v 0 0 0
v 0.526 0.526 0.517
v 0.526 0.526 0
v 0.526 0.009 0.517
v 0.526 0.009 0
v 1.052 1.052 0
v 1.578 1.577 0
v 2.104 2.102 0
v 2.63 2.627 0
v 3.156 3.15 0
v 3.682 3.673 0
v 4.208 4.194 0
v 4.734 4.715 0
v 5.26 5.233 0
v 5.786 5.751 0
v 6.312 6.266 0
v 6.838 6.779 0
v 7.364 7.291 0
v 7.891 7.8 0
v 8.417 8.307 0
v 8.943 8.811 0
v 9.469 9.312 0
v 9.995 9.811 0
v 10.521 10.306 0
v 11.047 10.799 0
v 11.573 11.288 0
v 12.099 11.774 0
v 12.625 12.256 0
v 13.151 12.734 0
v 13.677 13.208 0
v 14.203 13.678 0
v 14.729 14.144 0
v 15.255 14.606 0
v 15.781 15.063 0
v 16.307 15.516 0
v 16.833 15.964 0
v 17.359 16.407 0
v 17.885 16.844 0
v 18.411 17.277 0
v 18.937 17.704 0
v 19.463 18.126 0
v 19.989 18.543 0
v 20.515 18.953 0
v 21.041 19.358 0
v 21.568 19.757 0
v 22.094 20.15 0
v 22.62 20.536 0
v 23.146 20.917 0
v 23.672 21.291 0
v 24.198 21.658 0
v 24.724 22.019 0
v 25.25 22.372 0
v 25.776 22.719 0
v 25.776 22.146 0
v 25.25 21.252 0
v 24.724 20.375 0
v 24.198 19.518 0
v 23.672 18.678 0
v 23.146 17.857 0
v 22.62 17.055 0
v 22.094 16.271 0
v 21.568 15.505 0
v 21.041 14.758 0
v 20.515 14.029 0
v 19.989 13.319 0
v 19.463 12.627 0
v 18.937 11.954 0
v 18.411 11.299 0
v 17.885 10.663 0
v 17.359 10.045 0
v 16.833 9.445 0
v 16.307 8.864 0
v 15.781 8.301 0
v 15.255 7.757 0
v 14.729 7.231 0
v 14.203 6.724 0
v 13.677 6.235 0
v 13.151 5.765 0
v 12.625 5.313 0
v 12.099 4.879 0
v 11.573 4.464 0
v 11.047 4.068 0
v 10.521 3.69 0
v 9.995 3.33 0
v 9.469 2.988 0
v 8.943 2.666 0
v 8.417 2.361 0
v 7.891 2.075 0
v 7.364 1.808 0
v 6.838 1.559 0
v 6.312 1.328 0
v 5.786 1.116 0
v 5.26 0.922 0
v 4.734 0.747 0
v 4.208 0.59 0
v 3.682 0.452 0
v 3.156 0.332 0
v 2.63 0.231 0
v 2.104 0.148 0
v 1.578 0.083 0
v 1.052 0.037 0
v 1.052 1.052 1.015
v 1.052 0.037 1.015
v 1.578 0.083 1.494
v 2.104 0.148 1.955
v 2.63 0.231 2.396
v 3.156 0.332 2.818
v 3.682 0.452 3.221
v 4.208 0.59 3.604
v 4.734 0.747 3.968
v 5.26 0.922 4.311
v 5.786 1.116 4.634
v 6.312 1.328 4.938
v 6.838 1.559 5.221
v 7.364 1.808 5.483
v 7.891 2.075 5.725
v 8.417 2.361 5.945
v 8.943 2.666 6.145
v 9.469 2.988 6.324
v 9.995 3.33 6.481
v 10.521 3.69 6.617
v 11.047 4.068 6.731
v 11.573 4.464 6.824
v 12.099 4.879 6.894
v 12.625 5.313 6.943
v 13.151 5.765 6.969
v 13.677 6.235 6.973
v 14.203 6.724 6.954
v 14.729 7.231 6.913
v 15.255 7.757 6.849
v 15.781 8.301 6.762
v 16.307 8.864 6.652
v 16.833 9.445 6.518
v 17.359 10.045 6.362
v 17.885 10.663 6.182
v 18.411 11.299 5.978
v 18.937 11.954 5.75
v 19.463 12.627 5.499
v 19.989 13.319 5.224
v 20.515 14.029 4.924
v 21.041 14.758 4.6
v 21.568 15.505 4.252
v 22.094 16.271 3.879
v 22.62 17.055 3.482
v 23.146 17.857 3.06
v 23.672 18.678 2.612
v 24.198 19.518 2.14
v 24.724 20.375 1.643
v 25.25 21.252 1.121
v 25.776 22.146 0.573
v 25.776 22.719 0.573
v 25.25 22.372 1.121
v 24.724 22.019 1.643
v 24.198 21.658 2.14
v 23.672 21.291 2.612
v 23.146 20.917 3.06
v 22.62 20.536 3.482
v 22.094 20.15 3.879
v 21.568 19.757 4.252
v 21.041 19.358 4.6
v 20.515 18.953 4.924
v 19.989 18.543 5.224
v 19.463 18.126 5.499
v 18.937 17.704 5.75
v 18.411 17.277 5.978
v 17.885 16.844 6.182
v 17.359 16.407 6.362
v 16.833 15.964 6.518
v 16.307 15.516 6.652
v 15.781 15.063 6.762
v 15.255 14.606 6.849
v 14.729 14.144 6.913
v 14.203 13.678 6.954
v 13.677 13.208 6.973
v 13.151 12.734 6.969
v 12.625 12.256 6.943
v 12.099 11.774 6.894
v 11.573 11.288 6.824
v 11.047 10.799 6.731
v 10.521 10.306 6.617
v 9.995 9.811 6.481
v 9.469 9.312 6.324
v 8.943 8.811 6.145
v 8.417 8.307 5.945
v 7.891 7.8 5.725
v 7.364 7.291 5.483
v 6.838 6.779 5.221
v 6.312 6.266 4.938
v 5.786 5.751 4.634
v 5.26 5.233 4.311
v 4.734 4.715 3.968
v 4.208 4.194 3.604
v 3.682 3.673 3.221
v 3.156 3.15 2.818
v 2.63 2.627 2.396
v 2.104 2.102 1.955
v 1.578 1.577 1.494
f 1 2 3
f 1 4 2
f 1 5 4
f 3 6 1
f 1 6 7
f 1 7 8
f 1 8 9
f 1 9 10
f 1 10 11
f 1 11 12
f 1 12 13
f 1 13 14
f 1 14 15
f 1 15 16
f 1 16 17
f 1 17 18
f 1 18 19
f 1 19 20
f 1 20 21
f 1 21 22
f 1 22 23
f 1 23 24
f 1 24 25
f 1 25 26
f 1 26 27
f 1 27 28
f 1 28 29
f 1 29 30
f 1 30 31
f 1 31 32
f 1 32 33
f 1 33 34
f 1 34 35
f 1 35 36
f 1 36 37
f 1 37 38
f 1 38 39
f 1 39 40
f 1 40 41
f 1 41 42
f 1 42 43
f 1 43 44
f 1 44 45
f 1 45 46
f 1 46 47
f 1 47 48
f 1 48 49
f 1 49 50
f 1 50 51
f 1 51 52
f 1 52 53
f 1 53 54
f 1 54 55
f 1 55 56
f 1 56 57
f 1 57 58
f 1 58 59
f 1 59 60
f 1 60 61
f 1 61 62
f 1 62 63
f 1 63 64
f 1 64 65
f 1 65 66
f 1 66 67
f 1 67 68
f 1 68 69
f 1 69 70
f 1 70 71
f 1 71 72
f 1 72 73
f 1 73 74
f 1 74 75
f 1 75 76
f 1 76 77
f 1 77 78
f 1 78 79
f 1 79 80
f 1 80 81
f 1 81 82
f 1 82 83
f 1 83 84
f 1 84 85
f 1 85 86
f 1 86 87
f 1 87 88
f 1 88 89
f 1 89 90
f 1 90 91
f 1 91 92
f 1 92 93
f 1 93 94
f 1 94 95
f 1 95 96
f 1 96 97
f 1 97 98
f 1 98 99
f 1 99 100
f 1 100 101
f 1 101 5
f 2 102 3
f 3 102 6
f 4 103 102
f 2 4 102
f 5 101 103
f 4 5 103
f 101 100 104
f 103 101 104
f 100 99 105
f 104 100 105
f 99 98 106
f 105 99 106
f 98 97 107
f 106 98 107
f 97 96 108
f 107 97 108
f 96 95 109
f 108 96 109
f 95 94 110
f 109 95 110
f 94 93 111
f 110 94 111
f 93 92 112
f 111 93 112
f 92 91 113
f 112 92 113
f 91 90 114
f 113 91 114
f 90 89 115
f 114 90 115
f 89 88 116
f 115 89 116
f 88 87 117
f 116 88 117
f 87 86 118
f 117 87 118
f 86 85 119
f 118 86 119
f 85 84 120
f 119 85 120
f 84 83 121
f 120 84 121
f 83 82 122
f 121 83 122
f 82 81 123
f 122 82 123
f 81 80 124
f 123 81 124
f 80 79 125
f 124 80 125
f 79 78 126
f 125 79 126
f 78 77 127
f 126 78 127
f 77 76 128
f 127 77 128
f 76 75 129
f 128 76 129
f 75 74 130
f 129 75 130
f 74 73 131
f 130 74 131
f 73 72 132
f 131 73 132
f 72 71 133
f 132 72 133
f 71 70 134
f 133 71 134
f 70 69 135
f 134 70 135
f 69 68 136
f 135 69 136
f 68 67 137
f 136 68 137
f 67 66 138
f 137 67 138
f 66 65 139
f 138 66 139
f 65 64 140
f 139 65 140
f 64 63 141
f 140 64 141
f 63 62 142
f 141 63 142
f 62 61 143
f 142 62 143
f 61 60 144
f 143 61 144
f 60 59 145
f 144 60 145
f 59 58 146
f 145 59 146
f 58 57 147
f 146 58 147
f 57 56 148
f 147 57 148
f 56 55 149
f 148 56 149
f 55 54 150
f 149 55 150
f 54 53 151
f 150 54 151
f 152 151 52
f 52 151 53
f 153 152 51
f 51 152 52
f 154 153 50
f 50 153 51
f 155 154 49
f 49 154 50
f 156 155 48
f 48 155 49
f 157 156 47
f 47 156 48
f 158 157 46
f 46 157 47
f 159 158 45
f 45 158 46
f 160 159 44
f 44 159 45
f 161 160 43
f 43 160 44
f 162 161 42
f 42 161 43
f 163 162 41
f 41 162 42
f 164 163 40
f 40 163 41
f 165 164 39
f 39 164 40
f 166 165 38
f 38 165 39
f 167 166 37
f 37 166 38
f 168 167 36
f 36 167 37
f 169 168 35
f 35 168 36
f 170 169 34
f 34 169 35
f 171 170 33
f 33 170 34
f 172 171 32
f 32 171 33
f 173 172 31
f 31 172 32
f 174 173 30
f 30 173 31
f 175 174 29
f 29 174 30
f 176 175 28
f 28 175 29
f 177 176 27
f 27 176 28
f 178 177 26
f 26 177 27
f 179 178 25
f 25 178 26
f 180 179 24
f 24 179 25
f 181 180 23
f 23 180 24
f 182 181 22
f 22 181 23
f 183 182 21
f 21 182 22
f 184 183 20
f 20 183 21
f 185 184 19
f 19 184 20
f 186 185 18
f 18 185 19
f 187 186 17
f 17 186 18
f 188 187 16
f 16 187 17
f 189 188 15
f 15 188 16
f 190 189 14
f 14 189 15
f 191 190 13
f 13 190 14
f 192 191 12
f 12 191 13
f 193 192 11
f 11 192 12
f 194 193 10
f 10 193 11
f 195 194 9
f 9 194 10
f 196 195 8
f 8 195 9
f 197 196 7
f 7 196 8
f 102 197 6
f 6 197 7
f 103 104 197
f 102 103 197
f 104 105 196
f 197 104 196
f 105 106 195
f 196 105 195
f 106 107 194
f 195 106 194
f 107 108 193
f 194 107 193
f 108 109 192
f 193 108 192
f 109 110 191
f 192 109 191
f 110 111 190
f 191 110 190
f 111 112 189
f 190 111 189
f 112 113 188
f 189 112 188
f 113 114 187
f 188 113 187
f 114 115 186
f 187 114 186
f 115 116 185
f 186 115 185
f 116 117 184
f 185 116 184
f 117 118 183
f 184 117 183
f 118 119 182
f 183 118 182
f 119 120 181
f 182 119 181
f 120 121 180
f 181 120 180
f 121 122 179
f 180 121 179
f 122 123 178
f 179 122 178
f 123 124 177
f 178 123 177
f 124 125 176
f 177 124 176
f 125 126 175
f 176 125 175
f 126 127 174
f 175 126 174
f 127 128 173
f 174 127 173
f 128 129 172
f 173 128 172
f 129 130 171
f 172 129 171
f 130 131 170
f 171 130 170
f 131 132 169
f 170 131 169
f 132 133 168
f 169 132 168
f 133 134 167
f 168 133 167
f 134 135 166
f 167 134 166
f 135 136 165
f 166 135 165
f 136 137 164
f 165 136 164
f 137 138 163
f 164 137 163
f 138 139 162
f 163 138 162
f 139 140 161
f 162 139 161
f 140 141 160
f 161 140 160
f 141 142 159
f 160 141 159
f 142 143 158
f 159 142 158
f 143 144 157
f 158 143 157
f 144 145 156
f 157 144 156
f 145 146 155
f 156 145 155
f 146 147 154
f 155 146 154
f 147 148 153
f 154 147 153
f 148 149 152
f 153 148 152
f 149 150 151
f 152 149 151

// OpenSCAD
polyhedron(
	convexity = 1,
	triangles = [
		[0, 1, 3],
		[1, 2, 3],
		[4, 0, 5],
		[0, 1, 5],
		[5, 1, 6],
		[1, 2, 6],
		[6, 2, 7],
		[2, 3, 7],
		[7, 3, 4],
		[3, 0, 4],
		[8, 4, 9],
		[4, 5, 9],
		[9, 5, 10],
		[5, 6, 10],
		[10, 6, 11],
		[6, 7, 11],
		[11, 7, 8],
		[7, 4, 8],
		[12, 8, 13],
		[8, 9, 13],
		[13, 9, 14],
		[9, 10, 14],
		[14, 10, 15],
		[10, 11, 15],
		[15, 11, 12],
		[11, 8, 12],
		[16, 12, 17],
		[12, 13, 17],
		[17, 13, 18],
		[13, 14, 18],
		[18, 14, 19],
		[14, 15, 19],
		[19, 15, 16],
		[15, 12, 16],
		[20, 16, 21],
		[16, 17, 21],
		[21, 17, 22],
		[17, 18, 22],
		[22, 18, 23],
		[18, 19, 23],
		[23, 19, 20],
		[19, 16, 20],
		[24, 20, 25],
		[20, 21, 25],
		[25, 21, 26],
		[21, 22, 26],
		[26, 22, 27],
		[22, 23, 27],
		[27, 23, 24],
		[23, 20, 24],
		[28, 24, 29],
		[24, 25, 29],
		[29, 25, 30],
		[25, 26, 30],
		[30, 26, 31],
		[26, 27, 31],
		[31, 27, 28],
		[27, 24, 28],
		[32, 28, 33],
		[28, 29, 33],
		[33, 29, 34],
		[29, 30, 34],
		[34, 30, 35],
		[30, 31, 35],
		[35, 31, 32],
		[31, 28, 32],
		[36, 32, 37],
		[32, 33, 37],
		[37, 33, 38],
		[33, 34, 38],
		[38, 34, 39],
		[34, 35, 39],
		[39, 35, 36],
		[35, 32, 36],
		[40, 36, 41],
		[36, 37, 41],
		[41, 37, 42],
		[37, 38, 42],
		[42, 38, 43],
		[38, 39, 43],
		[43, 39, 40],
		[39, 36, 40],
		[44, 40, 45],
		[40, 41, 45],
		[45, 41, 46],
		[41, 42, 46],
		[46, 42, 47],
		[42, 43, 47],
		[47, 43, 44],
		[43, 40, 44],
		[48, 44, 49],
		[44, 45, 49],
		[49, 45, 50],
		[45, 46, 50],
		[50, 46, 51],
		[46, 47, 51],
		[51, 47, 48],
		[47, 44, 48],
		[52, 48, 53],
		[48, 49, 53],
		[53, 49, 54],
		[49, 50, 54],
		[54, 50, 55],
		[50, 51, 55],
		[55, 51, 52],
		[51, 48, 52],
		[56, 52, 57],
		[52, 53, 57],
		[57, 53, 58],
		[53, 54, 58],
		[58, 54, 59],
		[54, 55, 59],
		[59, 55, 56],
		[55, 52, 56],
		[60, 56, 61],
		[56, 57, 61],
		[61, 57, 62],
		[57, 58, 62],
		[62, 58, 63],
		[58, 59, 63],
		[63, 59, 60],
		[59, 56, 60],
		[64, 60, 65],
		[60, 61, 65],
		[65, 61, 66],
		[61, 62, 66],
		[66, 62, 67],
		[62, 63, 67],
		[67, 63, 64],
		[63, 60, 64],
		[68, 64, 69],
		[64, 65, 69],
		[69, 65, 70],
		[65, 66, 70],
		[70, 66, 71],
		[66, 67, 71],
		[71, 67, 68],
		[67, 64, 68],
		[72, 68, 73],
		[68, 69, 73],
		[73, 69, 74],
		[69, 70, 74],
		[74, 70, 75],
		[70, 71, 75],
		[75, 71, 72],
		[71, 68, 72],
		[76, 72, 77],
		[72, 73, 77],
		[77, 73, 78],
		[73, 74, 78],
		[78, 74, 79],
		[74, 75, 79],
		[79, 75, 76],
		[75, 72, 76],
		[80, 76, 81],
		[76, 77, 81],
		[81, 77, 82],
		[77, 78, 82],
		[82, 78, 83],
		[78, 79, 83],
		[83, 79, 80],
		[79, 76, 80],
		[84, 80, 85],
		[80, 81, 85],
		[85, 81, 86],
		[81, 82, 86],
		[86, 82, 87],
		[82, 83, 87],
		[87, 83, 84],
		[83, 80, 84],
		[88, 84, 89],
		[84, 85, 89],
		[89, 85, 90],
		[85, 86, 90],
		[90, 86, 91],
		[86, 87, 91],
		[91, 87, 88],
		[87, 84, 88],
		[92, 88, 93],
		[88, 89, 93],
		[93, 89, 94],
		[89, 90, 94],
		[94, 90, 95],
		[90, 91, 95],
		[95, 91, 92],
		[91, 88, 92],
		[96, 92, 97],
		[92, 93, 97],
		[97, 93, 98],
		[93, 94, 98],
		[98, 94, 99],
		[94, 95, 99],
		[99, 95, 96],
		[95, 92, 96],
		[100, 96, 101],
		[96, 97, 101],
		[101, 97, 102],
		[97, 98, 102],
		[102, 98, 103],
		[98, 99, 103],
		[103, 99, 100],
		[99, 96, 100],
		[104, 100, 105],
		[100, 101, 105],
		[105, 101, 106],
		[101, 102, 106],
		[106, 102, 107],
		[102, 103, 107],
		[107, 103, 104],
		[103, 100, 104],
		[108, 104, 109],
		[104, 105, 109],
		[109, 105, 110],
		[105, 106, 110],
		[110, 106, 111],
		[106, 107, 111],
		[111, 107, 108],
		[107, 104, 108],
		[112, 108, 113],
		[108, 109, 113],
		[113, 109, 114],
		[109, 110, 114],
		[114, 110, 115],
		[110, 111, 115],
		[115, 111, 112],
		[111, 108, 112],
		[116, 112, 117],
		[112, 113, 117],
		[117, 113, 118],
		[113, 114, 118],
		[118, 114, 119],
		[114, 115, 119],
		[119, 115, 116],
		[115, 112, 116],
		[120, 116, 121],
		[116, 117, 121],
		[121, 117, 122],
		[117, 118, 122],
		[122, 118, 123],
		[118, 119, 123],
		[123, 119, 120],
		[119, 116, 120],
		[124, 120, 125],
		[120, 121, 125],
		[125, 121, 126],
		[121, 122, 126],
		[126, 122, 127],
		[122, 123, 127],
		[127, 123, 124],
		[123, 120, 124],
		[128, 124, 129],
		[124, 125, 129],
		[129, 125, 130],
		[125, 126, 130],
		[130, 126, 131],
		[126, 127, 131],
		[131, 127, 128],
		[127, 124, 128],
		[132, 128, 133],
		[128, 129, 133],
		[133, 129, 134],
		[129, 130, 134],
		[134, 130, 135],
		[130, 131, 135],
		[135, 131, 132],
		[131, 128, 132],
		[136, 132, 137],
		[132, 133, 137],
		[137, 133, 138],
		[133, 134, 138],
		[138, 134, 139],
		[134, 135, 139],
		[139, 135, 136],
		[135, 132, 136],
		[140, 136, 141],
		[136, 137, 141],
		[141, 137, 142],
		[137, 138, 142],
		[142, 138, 143],
		[138, 139, 143],
		[143, 139, 140],
		[139, 136, 140],
		[144, 140, 145],
		[140, 141, 145],
		[145, 141, 146],
		[141, 142, 146],
		[146, 142, 147],
		[142, 143, 147],
		[147, 143, 144],
		[143, 140, 144],
		[148, 144, 149],
		[144, 145, 149],
		[149, 145, 150],
		[145, 146, 150],
		[150, 146, 151],
		[146, 147, 151],
		[151, 147, 148],
		[147, 144, 148],
		[152, 148, 153],
		[148, 149, 153],
		[153, 149, 154],
		[149, 150, 154],
		[154, 150, 155],
		[150, 151, 155],
		[155, 151, 152],
		[151, 148, 152],
		[156, 152, 157],
		[152, 153, 157],
		[157, 153, 158],
		[153, 154, 158],
		[158, 154, 159],
		[154, 155, 159],
		[159, 155, 156],
		[155, 152, 156],
		[160, 156, 161],
		[156, 157, 161],
		[161, 157, 162],
		[157, 158, 162],
		[162, 158, 163],
		[158, 159, 163],
		[163, 159, 160],
		[159, 156, 160],
		[164, 160, 165],
		[160, 161, 165],
		[165, 161, 166],
		[161, 162, 166],
		[166, 162, 167],
		[162, 163, 167],
		[167, 163, 164],
		[163, 160, 164],
		[168, 164, 169],
		[164, 165, 169],
		[169, 165, 170],
		[165, 166, 170],
		[170, 166, 171],
		[166, 167, 171],
		[171, 167, 168],
		[167, 164, 168],
		[172, 168, 173],
		[168, 169, 173],
		[173, 169, 174],
		[169, 170, 174],
		[174, 170, 175],
		[170, 171, 175],
		[175, 171, 172],
		[171, 168, 172],
		[176, 172, 177],
		[172, 173, 177],
		[177, 173, 178],
		[173, 174, 178],
		[178, 174, 179],
		[174, 175, 179],
		[179, 175, 176],
		[175, 172, 176],
		[180, 176, 181],
		[176, 177, 181],
		[181, 177, 182],
		[177, 178, 182],
		[182, 178, 183],
		[178, 179, 183],
		[183, 179, 180],
		[179, 176, 180],
		[184, 180, 185],
		[180, 181, 185],
		[185, 181, 186],
		[181, 182, 186],
		[186, 182, 187],
		[182, 183, 187],
		[187, 183, 184],
		[183, 180, 184],
		[188, 184, 189],
		[184, 185, 189],
		[189, 185, 190],
		[185, 186, 190],
		[190, 186, 191],
		[186, 187, 191],
		[191, 187, 188],
		[187, 184, 188],
		[192, 188, 193],
		[188, 189, 193],
		[193, 189, 194],
		[189, 190, 194],
		[194, 190, 195],
		[190, 191, 195],
		[195, 191, 192],
		[191, 188, 192],
		[196, 192, 197],
		[192, 193, 197],
		[197, 193, 198],
		[193, 194, 198],
		[198, 194, 199],
		[194, 195, 199],
		[199, 195, 196],
		[195, 192, 196],
		[196, 197, 199],
		[197, 198, 199],
	],
	points = [
		[0.0, 0.0, 0.0],
		[0.0, 0.0, 0.0],
		[0.0, 0.0, 0],
		[0.0, 0.0, 0],
		[0.5260356, 0.52600864465, 0.516784862901],
		[0.5260356, 0.00922378174891, 0.516784862901],
		[0.5260356, 0.00922378174891, 0],
		[0.5260356, 0.52600864465, 0],
		[1.0520712, 1.05185556715, 1.01496044015],
		[1.0520712, 0.0368951269956, 1.01496044015],
		[1.0520712, 0.0368951269956, 0],
		[1.0520712, 1.05185556715, 0],
		[1.5781068, 1.57737909506, 1.49436505931],
		[1.5781068, 0.0830140357402, 1.49436505931],
		[1.5781068, 0.0830140357402, 0],
		[1.5781068, 1.57737909506, 0],
		[2.1041424, 2.10241765537, 1.95483714739],
		[2.1041424, 0.147580507983, 1.95483714739],
		[2.1041424, 0.147580507983, 0],
		[2.1041424, 2.10241765537, 0],
		[2.630178, 2.6268098242, 2.39621528048],
		[2.630178, 0.230594543723, 2.39621528048],
		[2.630178, 0.230594543723, 0],
		[2.630178, 2.6268098242, 0],
		[3.1562136, 3.15039437637, 2.81833823341],
		[3.1562136, 0.332056142961, 2.81833823341],
		[3.1562136, 0.332056142961, 0],
		[3.1562136, 3.15039437637, 0],
		[3.6822492, 3.67301033502, 3.22104502932],
		[3.6822492, 0.451965305697, 3.22104502932],
		[3.6822492, 0.451965305697, 0],
		[3.6822492, 3.67301033502, 0],
		[4.2082848, 4.19449702108, 3.60417498915],
		[4.2082848, 0.59032203193, 3.60417498915],
		[4.2082848, 0.59032203193, 0],
		[4.2082848, 4.19449702108, 0],
		[4.7343204, 4.71469410267, 3.96756778101],
		[4.7343204, 0.747126321662, 3.96756778101],
		[4.7343204, 0.747126321662, 0],
		[4.7343204, 4.71469410267, 0],
		[5.260356, 5.23344164443, 4.31106346954],
		[5.260356, 0.922378174891, 4.31106346954],
		[5.260356, 0.922378174891, 0],
		[5.260356, 5.23344164443, 0],
		[5.7863916, 5.75058015663, 4.63450256502],
		[5.7863916, 1.11607759162, 4.63450256502],
		[5.7863916, 1.11607759162, 0],
		[5.7863916, 5.75058015663, 0],
		[6.3124272, 6.26595064426, 4.93772607242],
		[6.3124272, 1.32822457184, 4.93772607242],
		[6.3124272, 1.32822457184, 0],
		[6.3124272, 6.26595064426, 0],
		[6.8384628, 6.77939465587, 5.22057554031],
		[6.8384628, 1.55881911557, 5.22057554031],
		[6.8384628, 1.55881911557, 0],
		[6.8384628, 6.77939465587, 0],
		[7.3644984, 7.29075433233, 5.48289310955],
		[7.3644984, 1.80786122279, 5.48289310955],
		[7.3644984, 1.80786122279, 0],
		[7.3644984, 7.29075433233, 0],
		[7.890534, 7.79987245533, 5.72452156183],
		[7.890534, 2.07535089351, 5.72452156183],
		[7.890534, 2.07535089351, 0],
		[7.890534, 7.79987245533, 0],
		[8.4165696, 8.30659249574, 5.94530436802],
		[8.4165696, 2.36128812772, 5.94530436802],
		[8.4165696, 2.36128812772, 0],
		[8.4165696, 8.30659249574, 0],
		[8.9426052, 8.81075866171, 6.14508573627],
		[8.9426052, 2.66567292544, 6.14508573627],
		[8.9426052, 2.66567292544, 0],
		[8.9426052, 8.81075866171, 0],
		[9.4686408, 9.31221594658, 6.32371065993],
		[9.4686408, 2.98850528665, 6.32371065993],
		[9.4686408, 2.98850528665, 0],
		[9.4686408, 9.31221594658, 0],
		[9.9946764, 9.81081017656, 6.48102496521],
		[9.9946764, 3.32978521136, 6.48102496521],
		[9.9946764, 3.32978521136, 0],
		[9.9946764, 9.81081017656, 0],
		[10.520712, 10.3063880581, 6.61687535854],
		[10.520712, 3.68951269956, 6.61687535854],
		[10.520712, 3.68951269956, 0],
		[10.520712, 10.3063880581, 0],
		[11.0467476, 10.798797225, 6.73110947376],
		[11.0467476, 4.06768775127, 6.73110947376],
		[11.0467476, 4.06768775127, 0],
		[11.0467476, 10.798797225, 0],
		[11.5727832, 11.2878862854, 6.82357591892],
		[11.5727832, 4.46431036647, 6.82357591892],
		[11.5727832, 4.46431036647, 0],
		[11.5727832, 11.2878862854, 0],
		[12.0988188, 11.773504868, 6.89412432286],
		[12.0988188, 4.87938054517, 6.89412432286],
		[12.0988188, 4.87938054517, 0],
		[12.0988188, 11.773504868, 0],
		[12.6248544, 12.2555036688, 6.9426053814],
		[12.6248544, 5.31289828737, 6.9426053814],
		[12.6248544, 5.31289828737, 0],
		[12.6248544, 12.2555036688, 0],
		[13.15089, 12.7337344964, 6.96887090329],
		[13.15089, 5.76486359307, 6.96887090329],
		[13.15089, 5.76486359307, 0],
		[13.15089, 12.7337344964, 0],
		[13.6769256, 13.208050318, 6.97277385572],
		[13.6769256, 6.23527646226, 6.97277385572],
		[13.6769256, 6.23527646226, 0],
		[13.6769256, 13.208050318, 0],
		[14.2029612, 13.6783053045, 6.95416840959],
		[14.2029612, 6.72413689496, 6.95416840959],
		[14.2029612, 6.72413689496, 0],
		[14.2029612, 13.6783053045, 0],
		[14.7289968, 14.1443548754, 6.91290998429],
		[14.7289968, 7.23144489115, 6.91290998429],
		[14.7289968, 7.23144489115, 0],
		[14.7289968, 14.1443548754, 0],
		[15.2550324, 14.606055743, 6.84885529216],
		[15.2550324, 7.75720045083, 6.84885529216],
		[15.2550324, 7.75720045083, 0],
		[15.2550324, 14.606055743, 0],
		[15.781068, 15.0632659566, 6.76186238259],
		[15.781068, 8.30140357402, 6.76186238259],
		[15.781068, 8.30140357402, 0],
		[15.781068, 15.0632659566, 0],
		[16.3071036, 15.5158449463, 6.65179068559],
		[16.3071036, 8.8640542607, 6.65179068559],
		[16.3071036, 8.8640542607, 0],
		[16.3071036, 15.5158449463, 0],
		[16.8331392, 15.963653566, 6.51850105507],
		[16.8331392, 9.44515251089, 6.51850105507],
		[16.8331392, 9.44515251089, 0],
		[16.8331392, 15.963653566, 0],
		[17.3591748, 16.4065541362, 6.36185581159],
		[17.3591748, 10.0446983246, 6.36185581159],
		[17.3591748, 10.0446983246, 0],
		[17.3591748, 16.4065541362, 0],
		[17.8852104, 16.8444104865, 6.18171878471],
		[17.8852104, 10.6626917017, 6.18171878471],
		[17.8852104, 10.6626917017, 0],
		[17.8852104, 16.8444104865, 0],
		[18.411246, 17.2770879972, 5.97795535482],
		[18.411246, 11.2991326424, 5.97795535482],
		[18.411246, 11.2991326424, 0],
		[18.411246, 17.2770879972, 0],
		[18.9372816, 17.7044536412, 5.75043249457],
		[18.9372816, 11.9540211466, 5.75043249457],
		[18.9372816, 11.9540211466, 0],
		[18.9372816, 17.7044536412, 0],
		[19.4633172, 18.126376024, 5.49901880974],
		[19.4633172, 12.6273572143, 5.49901880974],
		[19.4633172, 12.6273572143, 0],
		[19.4633172, 18.126376024, 0],
		[19.9893528, 18.5427254251, 5.22358457966],
		[19.9893528, 13.3191408454, 5.22358457966],
		[19.9893528, 13.3191408454, 0],
		[19.9893528, 18.5427254251, 0],
		[20.5153884, 18.9533738372, 4.92400179707],
		[20.5153884, 14.0293720401, 4.92400179707],
		[20.5153884, 14.0293720401, 0],
		[20.5153884, 18.9533738372, 0],
		[21.041424, 19.3581950058, 4.60014420751],
		[21.041424, 14.7580507983, 4.60014420751],
		[21.041424, 14.7580507983, 0],
		[21.041424, 19.3581950058, 0],
		[21.5674596, 19.757064468, 4.25188734808],
		[21.5674596, 15.5051771199, 4.25188734808],
		[21.5674596, 15.5051771199, 0],
		[21.5674596, 19.757064468, 0],
		[22.0934952, 20.1498595908, 3.87910858577],
		[22.0934952, 16.2707510051, 3.87910858577],
		[22.0934952, 16.2707510051, 0],
		[22.0934952, 20.1498595908, 0],
		[22.6195308, 20.5364596089, 3.48168715512],
		[22.6195308, 17.0547724537, 3.48168715512],
		[22.6195308, 17.0547724537, 0],
		[22.6195308, 20.5364596089, 0],
		[23.1455664, 20.9167456613, 3.05950419537],
		[23.1455664, 17.8572414659, 3.05950419537],
		[23.1455664, 17.8572414659, 0],
		[23.1455664, 20.9167456613, 0],
		[23.671602, 21.2906008285, 2.612442787],
		[23.671602, 18.6781580415, 2.612442787],
		[23.671602, 18.6781580415, 0],
		[23.671602, 21.2906008285, 0],
		[24.1976376, 21.6579101684, 2.14038798767],
		[24.1976376, 19.5175221807, 2.14038798767],
		[24.1976376, 19.5175221807, 0],
		[24.1976376, 21.6579101684, 0],
		[24.7236732, 22.0185607509, 1.64322686757],
		[24.7236732, 20.3753338833, 1.64322686757],
		[24.7236732, 20.3753338833, 0],
		[24.7236732, 22.0185607509, 0],
		[25.2497088, 22.3724416936, 1.12084854413],
		[25.2497088, 21.2515931495, 1.12084854413],
		[25.2497088, 21.2515931495, 0],
		[25.2497088, 22.3724416936, 0],
		[25.7757444, 22.7194441953, 0.573144216115],
		[25.7757444, 22.1462999791, 0.573144216115],
		[25.7757444, 22.1462999791, 0],
		[25.7757444, 22.7194441953, 0],
	]
);
